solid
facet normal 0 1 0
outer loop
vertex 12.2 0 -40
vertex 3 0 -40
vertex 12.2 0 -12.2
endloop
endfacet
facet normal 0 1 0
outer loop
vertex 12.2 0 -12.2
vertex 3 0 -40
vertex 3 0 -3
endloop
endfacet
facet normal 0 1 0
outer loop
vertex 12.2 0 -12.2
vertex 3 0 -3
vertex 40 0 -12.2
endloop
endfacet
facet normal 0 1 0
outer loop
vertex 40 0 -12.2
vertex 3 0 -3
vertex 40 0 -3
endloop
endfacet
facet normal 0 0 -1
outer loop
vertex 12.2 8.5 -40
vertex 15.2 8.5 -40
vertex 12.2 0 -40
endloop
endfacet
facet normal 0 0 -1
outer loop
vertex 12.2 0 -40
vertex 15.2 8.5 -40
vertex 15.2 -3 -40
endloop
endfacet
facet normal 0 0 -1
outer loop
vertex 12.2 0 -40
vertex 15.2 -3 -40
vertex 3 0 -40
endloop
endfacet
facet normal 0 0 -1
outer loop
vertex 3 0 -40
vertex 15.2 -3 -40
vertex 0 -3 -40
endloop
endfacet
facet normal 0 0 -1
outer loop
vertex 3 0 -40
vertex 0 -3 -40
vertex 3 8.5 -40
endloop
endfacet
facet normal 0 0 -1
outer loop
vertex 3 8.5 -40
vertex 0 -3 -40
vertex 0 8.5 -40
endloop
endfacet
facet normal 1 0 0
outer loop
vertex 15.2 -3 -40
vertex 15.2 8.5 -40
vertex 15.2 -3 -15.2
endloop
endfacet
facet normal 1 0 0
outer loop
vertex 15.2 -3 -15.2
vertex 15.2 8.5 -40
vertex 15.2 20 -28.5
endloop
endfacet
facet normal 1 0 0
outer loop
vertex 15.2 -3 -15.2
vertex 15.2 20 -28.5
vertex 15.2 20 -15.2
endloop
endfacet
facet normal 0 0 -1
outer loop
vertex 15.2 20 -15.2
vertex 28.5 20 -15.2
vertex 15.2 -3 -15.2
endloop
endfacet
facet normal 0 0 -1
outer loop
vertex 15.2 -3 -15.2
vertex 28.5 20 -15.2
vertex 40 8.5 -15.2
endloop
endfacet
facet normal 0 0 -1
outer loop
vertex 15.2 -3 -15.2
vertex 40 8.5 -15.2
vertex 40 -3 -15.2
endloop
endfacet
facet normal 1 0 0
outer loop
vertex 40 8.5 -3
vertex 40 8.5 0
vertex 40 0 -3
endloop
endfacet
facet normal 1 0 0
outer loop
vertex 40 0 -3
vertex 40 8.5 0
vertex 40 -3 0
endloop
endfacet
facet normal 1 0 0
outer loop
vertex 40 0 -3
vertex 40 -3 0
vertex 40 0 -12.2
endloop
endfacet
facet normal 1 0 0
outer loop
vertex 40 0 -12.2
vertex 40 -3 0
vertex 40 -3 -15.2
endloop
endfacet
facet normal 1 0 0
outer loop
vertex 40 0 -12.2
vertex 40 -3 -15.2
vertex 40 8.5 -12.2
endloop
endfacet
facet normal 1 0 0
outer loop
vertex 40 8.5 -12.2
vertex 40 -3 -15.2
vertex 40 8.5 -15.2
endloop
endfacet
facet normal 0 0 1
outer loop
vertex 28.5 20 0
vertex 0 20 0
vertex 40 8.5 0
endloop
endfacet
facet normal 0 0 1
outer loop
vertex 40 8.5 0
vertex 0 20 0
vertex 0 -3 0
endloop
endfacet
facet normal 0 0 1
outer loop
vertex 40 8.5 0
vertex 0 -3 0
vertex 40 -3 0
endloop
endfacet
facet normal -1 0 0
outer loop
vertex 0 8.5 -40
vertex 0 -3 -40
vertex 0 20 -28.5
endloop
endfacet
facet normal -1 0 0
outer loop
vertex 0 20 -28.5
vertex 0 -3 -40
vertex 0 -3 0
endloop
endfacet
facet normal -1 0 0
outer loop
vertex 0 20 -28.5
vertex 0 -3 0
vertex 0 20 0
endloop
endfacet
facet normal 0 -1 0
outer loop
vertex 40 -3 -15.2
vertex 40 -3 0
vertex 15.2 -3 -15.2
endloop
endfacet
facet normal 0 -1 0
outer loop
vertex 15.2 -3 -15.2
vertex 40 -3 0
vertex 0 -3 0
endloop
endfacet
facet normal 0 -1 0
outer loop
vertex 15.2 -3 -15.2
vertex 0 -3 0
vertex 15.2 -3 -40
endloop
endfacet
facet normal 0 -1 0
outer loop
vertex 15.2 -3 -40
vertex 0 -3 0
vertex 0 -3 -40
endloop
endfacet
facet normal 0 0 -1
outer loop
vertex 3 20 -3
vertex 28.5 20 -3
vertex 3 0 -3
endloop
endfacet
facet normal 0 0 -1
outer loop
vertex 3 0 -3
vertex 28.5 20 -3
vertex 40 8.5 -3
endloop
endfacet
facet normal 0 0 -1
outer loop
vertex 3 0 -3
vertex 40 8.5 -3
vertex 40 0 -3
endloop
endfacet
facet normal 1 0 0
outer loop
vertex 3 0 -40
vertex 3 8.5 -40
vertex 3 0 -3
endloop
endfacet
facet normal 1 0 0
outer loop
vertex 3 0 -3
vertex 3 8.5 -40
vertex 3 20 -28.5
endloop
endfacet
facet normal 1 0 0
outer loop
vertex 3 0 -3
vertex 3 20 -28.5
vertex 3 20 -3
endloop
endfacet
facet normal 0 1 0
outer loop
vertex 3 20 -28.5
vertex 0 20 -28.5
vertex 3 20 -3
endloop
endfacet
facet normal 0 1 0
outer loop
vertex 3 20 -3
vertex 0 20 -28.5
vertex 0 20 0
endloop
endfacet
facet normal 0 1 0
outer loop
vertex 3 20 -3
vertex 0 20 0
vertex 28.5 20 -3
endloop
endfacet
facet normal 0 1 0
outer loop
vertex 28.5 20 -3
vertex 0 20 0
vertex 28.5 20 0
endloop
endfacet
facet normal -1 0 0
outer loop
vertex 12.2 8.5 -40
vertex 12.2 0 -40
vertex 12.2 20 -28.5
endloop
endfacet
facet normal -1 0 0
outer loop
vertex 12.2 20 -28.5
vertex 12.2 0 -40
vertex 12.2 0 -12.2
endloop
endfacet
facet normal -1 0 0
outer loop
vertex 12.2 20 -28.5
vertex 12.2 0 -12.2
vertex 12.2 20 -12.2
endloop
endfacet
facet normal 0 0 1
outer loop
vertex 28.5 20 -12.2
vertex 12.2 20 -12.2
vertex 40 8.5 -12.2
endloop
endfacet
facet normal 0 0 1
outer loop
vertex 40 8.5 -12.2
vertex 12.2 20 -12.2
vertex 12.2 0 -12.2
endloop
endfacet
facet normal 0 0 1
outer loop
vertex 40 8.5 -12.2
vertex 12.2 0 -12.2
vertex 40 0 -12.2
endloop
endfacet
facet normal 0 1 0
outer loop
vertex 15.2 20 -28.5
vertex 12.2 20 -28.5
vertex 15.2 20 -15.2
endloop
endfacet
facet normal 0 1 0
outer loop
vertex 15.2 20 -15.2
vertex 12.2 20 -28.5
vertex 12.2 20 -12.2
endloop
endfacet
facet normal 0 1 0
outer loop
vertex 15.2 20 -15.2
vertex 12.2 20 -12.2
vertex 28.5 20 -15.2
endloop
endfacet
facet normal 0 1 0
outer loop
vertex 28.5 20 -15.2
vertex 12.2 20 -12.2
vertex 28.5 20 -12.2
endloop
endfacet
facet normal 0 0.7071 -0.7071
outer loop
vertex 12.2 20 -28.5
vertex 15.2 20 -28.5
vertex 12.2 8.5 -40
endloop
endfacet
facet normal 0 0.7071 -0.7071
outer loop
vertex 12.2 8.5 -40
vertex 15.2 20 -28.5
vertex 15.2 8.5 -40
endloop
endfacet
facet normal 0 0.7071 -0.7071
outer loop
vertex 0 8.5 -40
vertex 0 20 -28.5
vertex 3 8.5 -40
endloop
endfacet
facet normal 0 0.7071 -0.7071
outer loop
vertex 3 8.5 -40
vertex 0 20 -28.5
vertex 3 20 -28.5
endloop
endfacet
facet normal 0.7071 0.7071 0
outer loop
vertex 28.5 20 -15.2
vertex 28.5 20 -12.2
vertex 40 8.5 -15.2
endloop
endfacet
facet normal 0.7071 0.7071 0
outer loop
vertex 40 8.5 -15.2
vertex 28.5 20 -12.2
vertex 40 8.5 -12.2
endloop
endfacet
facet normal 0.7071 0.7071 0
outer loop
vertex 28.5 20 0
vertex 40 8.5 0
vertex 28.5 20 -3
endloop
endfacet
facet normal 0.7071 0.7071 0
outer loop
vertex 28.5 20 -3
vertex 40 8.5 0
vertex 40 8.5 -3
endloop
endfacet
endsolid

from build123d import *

# Parameters (mm, degrees)
EXTRUDE_1_DEPTH     = 3
EXTRUDE_2_DEPTH     = 20
CUT_EXTRUDE_1_DEPTH = 61
CUT_EXTRUDE_2_DEPTH = 52.137461806


with BuildPart() as part:
    # 草图1 → 凸台-拉伸1 (new body)
    with BuildSketch(Plane(origin=(0, 0, 0), x_dir=(1, 0, 0), z_dir=(0, 1, 0))):
        Polygon((40, 15.2), (15.2, 15.2), (15.2, 40), (0, 40), (0, 0), (40, 0), align=None)
    extrude(amount=-EXTRUDE_1_DEPTH)

    # 草图1<3> → 凸台-拉伸2 (add)
    with BuildSketch(Plane(origin=(0, 0, 0), x_dir=(1, 0, 0), z_dir=(0, 1, 0))):
        Polygon((40, 15.2), (15.2, 15.2), (15.2, 40), (12.2, 40), (12.2, 12.2), (40, 12.2), align=None)
        Polygon((40, 0), (40, 3), (3, 3), (3, 40), (0, 40), (0, 0), align=None)
    extrude(amount=EXTRUDE_2_DEPTH)

    # 草图2 → 切除-拉伸1 (cut, through all)
    with BuildSketch(Plane.ZY):
        Polygon((-40, 8.5), (-28.5, 20), (-40, 20), align=None)
    extrude(amount=-CUT_EXTRUDE_1_DEPTH, mode=Mode.SUBTRACT)

    # 草图3 → 切除-拉伸2 (cut, through all)
    with BuildSketch(Plane(origin=(0, 0, -15.2), x_dir=(-1, 0, 0), z_dir=(0, 0, -1))):
        Polygon((-40, 8.5), (-28.5, 20), (-40, 20), align=None)
    extrude(amount=-CUT_EXTRUDE_2_DEPTH, mode=Mode.SUBTRACT)


solid = part.part
